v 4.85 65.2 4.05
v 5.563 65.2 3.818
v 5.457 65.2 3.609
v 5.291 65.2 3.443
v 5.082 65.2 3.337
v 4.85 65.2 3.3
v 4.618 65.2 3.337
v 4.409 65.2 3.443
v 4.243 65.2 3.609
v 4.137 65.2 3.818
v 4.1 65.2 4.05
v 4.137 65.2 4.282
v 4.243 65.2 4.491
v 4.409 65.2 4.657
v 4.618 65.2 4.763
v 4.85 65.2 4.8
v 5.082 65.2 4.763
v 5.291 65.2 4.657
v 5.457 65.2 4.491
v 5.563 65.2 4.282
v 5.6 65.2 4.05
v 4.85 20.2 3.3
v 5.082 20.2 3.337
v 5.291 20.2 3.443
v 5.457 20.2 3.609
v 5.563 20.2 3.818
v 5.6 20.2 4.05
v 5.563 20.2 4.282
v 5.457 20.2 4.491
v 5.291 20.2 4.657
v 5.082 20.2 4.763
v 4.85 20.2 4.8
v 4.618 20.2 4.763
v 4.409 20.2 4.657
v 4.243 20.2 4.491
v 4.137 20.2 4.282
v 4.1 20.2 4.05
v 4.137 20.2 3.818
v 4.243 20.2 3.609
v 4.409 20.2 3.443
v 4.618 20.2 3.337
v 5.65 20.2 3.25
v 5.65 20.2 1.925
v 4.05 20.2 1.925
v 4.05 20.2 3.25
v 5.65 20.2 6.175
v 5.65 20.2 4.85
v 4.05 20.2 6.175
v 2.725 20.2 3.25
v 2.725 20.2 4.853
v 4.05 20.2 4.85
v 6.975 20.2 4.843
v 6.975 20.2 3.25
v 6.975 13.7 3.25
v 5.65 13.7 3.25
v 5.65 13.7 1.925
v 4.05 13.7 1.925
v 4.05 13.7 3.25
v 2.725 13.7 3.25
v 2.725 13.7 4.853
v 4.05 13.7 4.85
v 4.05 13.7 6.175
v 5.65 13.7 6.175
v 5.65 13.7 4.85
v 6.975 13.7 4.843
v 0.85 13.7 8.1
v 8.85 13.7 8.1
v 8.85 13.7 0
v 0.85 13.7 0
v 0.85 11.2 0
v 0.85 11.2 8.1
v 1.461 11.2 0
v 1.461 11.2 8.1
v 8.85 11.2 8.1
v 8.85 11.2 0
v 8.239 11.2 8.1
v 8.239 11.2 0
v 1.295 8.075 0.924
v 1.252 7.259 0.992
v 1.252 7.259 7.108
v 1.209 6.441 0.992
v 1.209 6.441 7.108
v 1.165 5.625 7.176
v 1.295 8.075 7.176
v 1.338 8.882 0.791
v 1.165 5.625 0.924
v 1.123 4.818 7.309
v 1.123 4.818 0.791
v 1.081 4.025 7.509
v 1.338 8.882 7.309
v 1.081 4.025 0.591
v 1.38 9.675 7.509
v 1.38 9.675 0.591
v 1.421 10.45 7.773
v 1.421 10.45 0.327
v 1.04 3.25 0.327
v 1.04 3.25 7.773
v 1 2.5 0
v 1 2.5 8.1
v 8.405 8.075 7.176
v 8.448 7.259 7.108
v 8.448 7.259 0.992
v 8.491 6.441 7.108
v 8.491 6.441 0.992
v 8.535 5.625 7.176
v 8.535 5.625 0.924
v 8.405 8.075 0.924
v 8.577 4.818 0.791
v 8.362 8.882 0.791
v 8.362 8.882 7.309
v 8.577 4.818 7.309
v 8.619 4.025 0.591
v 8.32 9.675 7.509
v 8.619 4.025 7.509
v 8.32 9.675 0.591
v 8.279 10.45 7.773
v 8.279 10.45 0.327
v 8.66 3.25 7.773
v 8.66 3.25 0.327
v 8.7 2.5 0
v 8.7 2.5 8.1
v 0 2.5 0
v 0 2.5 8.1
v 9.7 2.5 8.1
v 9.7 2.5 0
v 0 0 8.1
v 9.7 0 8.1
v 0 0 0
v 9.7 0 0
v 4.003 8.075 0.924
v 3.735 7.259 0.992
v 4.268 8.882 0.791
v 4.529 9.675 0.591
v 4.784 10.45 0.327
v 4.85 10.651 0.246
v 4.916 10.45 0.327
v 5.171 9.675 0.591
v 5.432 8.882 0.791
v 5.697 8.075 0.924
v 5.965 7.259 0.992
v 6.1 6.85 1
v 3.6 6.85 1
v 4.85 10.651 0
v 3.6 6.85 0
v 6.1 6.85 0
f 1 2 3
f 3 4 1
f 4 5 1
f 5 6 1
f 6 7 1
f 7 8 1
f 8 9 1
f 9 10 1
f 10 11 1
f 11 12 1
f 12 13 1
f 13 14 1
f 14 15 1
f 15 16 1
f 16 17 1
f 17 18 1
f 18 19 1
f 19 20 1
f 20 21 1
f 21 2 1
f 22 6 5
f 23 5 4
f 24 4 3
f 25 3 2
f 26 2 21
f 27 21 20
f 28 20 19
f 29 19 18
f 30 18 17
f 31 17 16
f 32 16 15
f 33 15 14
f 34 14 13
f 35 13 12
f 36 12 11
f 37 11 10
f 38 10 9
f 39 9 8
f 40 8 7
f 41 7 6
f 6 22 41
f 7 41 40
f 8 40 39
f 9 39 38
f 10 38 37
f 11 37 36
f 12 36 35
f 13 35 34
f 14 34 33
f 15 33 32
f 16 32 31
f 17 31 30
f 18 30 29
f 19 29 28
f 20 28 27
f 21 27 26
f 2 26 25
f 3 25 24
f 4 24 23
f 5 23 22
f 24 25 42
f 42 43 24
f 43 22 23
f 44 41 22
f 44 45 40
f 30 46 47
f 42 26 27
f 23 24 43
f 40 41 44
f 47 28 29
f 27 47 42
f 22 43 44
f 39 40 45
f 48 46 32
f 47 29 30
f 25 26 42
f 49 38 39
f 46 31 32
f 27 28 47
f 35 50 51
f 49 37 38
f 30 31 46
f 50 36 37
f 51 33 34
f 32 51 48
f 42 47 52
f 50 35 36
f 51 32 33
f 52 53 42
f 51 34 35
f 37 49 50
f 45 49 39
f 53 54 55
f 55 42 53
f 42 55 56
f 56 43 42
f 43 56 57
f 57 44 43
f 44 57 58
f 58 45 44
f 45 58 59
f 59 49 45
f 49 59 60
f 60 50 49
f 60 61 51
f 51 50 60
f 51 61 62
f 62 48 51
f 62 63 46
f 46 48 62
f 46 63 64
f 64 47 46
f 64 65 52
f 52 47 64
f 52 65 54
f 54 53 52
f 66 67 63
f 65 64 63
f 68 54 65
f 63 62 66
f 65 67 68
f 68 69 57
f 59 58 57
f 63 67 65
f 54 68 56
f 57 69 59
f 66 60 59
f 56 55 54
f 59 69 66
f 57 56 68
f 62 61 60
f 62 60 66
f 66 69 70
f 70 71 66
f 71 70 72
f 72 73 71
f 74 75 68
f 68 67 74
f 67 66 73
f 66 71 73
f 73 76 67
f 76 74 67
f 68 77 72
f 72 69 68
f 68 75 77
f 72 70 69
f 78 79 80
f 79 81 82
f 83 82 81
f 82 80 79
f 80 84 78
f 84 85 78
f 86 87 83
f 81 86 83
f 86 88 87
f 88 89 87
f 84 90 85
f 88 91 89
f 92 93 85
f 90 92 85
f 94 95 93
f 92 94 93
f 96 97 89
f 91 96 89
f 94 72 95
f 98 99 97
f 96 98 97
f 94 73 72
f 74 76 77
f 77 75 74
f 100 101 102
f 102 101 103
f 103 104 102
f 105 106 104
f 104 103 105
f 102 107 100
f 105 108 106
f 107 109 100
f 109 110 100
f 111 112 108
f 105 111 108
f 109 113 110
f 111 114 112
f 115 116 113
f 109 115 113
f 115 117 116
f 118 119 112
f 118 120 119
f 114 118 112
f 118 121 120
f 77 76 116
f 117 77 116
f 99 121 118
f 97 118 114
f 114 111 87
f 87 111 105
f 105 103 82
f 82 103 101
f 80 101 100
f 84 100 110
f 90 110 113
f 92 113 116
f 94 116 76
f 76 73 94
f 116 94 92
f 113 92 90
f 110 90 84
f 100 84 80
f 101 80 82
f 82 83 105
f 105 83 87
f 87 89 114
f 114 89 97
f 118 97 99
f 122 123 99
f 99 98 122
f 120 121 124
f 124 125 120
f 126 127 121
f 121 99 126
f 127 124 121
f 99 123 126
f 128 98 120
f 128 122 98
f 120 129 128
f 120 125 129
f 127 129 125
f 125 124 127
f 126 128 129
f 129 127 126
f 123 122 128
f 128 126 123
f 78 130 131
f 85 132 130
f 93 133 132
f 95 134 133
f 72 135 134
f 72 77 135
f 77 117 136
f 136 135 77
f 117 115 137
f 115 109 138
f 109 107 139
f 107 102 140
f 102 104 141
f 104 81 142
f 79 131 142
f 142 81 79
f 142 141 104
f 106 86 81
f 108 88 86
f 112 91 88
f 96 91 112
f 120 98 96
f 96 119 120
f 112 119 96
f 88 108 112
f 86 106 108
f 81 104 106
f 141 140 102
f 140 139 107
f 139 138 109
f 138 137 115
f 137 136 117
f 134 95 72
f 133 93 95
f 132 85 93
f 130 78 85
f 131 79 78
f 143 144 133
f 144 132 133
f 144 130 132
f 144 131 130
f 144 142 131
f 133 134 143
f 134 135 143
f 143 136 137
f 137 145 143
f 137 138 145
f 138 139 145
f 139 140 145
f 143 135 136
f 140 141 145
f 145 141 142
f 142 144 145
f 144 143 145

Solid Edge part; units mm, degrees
sketch "Sketch1" plane through (0, 0, 0) normal (0, 0, 1) x (1, 0, 0)
  line L0 (1, 2.5) -> (1.4606, 11.2)
  line L1 (0.85, 11.2) -> (1.4606, 11.2)
  line L2 (0.85, 13.7) -> (0.85, 11.2)
  line L3 (0.85, 13.7) -> (8.85, 13.7)
  line L4 (8.85, 11.2) -> (8.85, 13.7)
  line L5 (8.85, 11.2) -> (8.2394, 11.2)
  line L6 (8.7, 2.5) -> (8.2394, 11.2)
  line L7 (9.7, 2.5) -> (8.7, 2.5)
  line L8 (9.7, 0) -> (9.7, 2.5)
  line L9 (0, 0) -> (9.7, 0)
  line L10 (0, 2.5) -> (0, 0)
  line L11 (0, 2.5) -> (1, 2.5)
extrude "Protrusion1" add sketch "Sketch1" along normal up to vertex (8.1 mm away)
sketch "Sketch2" plane through (0, 0, 0) normal (1, 0, 0) x (0, 1, 0)
  line L0 (11.2, 0) -> (13.7, 0)
  line L1 (13.7, 0) -> (13.7, 8.1)
  line L2 (13.7, 8.1) -> (11.2, 8.1)
  arc A0 (2.5, 8.1) -> (11.2, 8.1) centre (6.85, 17.0612) ccw
  line L3 (2.5, 8.1) -> (0, 8.1)
  line L4 (0, 8.1) -> (0, 0)
  line L5 (0, 0) -> (2.5, 0)
  arc A1 (2.5, 0) -> (11.2, 0) centre (6.85, -8.9613) cw
extrude "Cutout1" cut sketch "Sketch2" along normal blind 13.0896 flip side to cut
sketch "Sketch3" plane through (4.85, 10.275, 0) normal (0, 0, -1) x (-1, 0, 0)
  line L0 (1.25, -3.425) -> (0, 0.3758)
  line L1 (0, 0.3758) -> (-1.25, -3.425)
  line L2 (0, -3.425) -> (-1.25, -3.425)
  line L3 (0, -3.425) -> (1.25, -3.425)
extrude "TriangleProtrusion" add sketch "Sketch3" against normal blind 2.6122
sketch "Sketch4" plane through (4.85, 13.7, 4.05) normal (0, 1, 0) x (1, 0, 0)
  line L0 (0.8, 0.8) -> (0.8, 2.125)
  line L1 (0.8, 2.125) -> (-0.8, 2.125)
  line L2 (-0.8, 2.125) -> (-0.8, 0.8)
  line L3 (-0.8, 0.8) -> (-2.125, 0.8)
  line L4 (-2.125, 0.8) -> (-2.125, -0.8032)
  line L5 (-2.125, -0.8032) -> (-0.8, -0.8)
  line L6 (-0.8, -0.8) -> (-0.8, -2.125)
  line L7 (-0.8, -2.125) -> (0.8, -2.125)
  line L8 (0.8, -2.125) -> (0.8, -0.8)
  line L9 (0.8, -0.8) -> (2.125, -0.793)
  line L10 (2.125, -0.793) -> (2.125, 0.8)
  line L11 (2.125, 0.8) -> (0.8, 0.8)
extrude "Protrusion2" add sketch "Sketch4" along normal up to vertex (6.5 mm away)
sketch "Sketch5" plane through (4.85, 20.2, 4.05) normal (0, 1, 0) x (1, 0, 0)
  circle A0 centre (0, 0) radius 0.75
extrude "ShaftProtrusion" add sketch "Sketch5" along normal blind 45
